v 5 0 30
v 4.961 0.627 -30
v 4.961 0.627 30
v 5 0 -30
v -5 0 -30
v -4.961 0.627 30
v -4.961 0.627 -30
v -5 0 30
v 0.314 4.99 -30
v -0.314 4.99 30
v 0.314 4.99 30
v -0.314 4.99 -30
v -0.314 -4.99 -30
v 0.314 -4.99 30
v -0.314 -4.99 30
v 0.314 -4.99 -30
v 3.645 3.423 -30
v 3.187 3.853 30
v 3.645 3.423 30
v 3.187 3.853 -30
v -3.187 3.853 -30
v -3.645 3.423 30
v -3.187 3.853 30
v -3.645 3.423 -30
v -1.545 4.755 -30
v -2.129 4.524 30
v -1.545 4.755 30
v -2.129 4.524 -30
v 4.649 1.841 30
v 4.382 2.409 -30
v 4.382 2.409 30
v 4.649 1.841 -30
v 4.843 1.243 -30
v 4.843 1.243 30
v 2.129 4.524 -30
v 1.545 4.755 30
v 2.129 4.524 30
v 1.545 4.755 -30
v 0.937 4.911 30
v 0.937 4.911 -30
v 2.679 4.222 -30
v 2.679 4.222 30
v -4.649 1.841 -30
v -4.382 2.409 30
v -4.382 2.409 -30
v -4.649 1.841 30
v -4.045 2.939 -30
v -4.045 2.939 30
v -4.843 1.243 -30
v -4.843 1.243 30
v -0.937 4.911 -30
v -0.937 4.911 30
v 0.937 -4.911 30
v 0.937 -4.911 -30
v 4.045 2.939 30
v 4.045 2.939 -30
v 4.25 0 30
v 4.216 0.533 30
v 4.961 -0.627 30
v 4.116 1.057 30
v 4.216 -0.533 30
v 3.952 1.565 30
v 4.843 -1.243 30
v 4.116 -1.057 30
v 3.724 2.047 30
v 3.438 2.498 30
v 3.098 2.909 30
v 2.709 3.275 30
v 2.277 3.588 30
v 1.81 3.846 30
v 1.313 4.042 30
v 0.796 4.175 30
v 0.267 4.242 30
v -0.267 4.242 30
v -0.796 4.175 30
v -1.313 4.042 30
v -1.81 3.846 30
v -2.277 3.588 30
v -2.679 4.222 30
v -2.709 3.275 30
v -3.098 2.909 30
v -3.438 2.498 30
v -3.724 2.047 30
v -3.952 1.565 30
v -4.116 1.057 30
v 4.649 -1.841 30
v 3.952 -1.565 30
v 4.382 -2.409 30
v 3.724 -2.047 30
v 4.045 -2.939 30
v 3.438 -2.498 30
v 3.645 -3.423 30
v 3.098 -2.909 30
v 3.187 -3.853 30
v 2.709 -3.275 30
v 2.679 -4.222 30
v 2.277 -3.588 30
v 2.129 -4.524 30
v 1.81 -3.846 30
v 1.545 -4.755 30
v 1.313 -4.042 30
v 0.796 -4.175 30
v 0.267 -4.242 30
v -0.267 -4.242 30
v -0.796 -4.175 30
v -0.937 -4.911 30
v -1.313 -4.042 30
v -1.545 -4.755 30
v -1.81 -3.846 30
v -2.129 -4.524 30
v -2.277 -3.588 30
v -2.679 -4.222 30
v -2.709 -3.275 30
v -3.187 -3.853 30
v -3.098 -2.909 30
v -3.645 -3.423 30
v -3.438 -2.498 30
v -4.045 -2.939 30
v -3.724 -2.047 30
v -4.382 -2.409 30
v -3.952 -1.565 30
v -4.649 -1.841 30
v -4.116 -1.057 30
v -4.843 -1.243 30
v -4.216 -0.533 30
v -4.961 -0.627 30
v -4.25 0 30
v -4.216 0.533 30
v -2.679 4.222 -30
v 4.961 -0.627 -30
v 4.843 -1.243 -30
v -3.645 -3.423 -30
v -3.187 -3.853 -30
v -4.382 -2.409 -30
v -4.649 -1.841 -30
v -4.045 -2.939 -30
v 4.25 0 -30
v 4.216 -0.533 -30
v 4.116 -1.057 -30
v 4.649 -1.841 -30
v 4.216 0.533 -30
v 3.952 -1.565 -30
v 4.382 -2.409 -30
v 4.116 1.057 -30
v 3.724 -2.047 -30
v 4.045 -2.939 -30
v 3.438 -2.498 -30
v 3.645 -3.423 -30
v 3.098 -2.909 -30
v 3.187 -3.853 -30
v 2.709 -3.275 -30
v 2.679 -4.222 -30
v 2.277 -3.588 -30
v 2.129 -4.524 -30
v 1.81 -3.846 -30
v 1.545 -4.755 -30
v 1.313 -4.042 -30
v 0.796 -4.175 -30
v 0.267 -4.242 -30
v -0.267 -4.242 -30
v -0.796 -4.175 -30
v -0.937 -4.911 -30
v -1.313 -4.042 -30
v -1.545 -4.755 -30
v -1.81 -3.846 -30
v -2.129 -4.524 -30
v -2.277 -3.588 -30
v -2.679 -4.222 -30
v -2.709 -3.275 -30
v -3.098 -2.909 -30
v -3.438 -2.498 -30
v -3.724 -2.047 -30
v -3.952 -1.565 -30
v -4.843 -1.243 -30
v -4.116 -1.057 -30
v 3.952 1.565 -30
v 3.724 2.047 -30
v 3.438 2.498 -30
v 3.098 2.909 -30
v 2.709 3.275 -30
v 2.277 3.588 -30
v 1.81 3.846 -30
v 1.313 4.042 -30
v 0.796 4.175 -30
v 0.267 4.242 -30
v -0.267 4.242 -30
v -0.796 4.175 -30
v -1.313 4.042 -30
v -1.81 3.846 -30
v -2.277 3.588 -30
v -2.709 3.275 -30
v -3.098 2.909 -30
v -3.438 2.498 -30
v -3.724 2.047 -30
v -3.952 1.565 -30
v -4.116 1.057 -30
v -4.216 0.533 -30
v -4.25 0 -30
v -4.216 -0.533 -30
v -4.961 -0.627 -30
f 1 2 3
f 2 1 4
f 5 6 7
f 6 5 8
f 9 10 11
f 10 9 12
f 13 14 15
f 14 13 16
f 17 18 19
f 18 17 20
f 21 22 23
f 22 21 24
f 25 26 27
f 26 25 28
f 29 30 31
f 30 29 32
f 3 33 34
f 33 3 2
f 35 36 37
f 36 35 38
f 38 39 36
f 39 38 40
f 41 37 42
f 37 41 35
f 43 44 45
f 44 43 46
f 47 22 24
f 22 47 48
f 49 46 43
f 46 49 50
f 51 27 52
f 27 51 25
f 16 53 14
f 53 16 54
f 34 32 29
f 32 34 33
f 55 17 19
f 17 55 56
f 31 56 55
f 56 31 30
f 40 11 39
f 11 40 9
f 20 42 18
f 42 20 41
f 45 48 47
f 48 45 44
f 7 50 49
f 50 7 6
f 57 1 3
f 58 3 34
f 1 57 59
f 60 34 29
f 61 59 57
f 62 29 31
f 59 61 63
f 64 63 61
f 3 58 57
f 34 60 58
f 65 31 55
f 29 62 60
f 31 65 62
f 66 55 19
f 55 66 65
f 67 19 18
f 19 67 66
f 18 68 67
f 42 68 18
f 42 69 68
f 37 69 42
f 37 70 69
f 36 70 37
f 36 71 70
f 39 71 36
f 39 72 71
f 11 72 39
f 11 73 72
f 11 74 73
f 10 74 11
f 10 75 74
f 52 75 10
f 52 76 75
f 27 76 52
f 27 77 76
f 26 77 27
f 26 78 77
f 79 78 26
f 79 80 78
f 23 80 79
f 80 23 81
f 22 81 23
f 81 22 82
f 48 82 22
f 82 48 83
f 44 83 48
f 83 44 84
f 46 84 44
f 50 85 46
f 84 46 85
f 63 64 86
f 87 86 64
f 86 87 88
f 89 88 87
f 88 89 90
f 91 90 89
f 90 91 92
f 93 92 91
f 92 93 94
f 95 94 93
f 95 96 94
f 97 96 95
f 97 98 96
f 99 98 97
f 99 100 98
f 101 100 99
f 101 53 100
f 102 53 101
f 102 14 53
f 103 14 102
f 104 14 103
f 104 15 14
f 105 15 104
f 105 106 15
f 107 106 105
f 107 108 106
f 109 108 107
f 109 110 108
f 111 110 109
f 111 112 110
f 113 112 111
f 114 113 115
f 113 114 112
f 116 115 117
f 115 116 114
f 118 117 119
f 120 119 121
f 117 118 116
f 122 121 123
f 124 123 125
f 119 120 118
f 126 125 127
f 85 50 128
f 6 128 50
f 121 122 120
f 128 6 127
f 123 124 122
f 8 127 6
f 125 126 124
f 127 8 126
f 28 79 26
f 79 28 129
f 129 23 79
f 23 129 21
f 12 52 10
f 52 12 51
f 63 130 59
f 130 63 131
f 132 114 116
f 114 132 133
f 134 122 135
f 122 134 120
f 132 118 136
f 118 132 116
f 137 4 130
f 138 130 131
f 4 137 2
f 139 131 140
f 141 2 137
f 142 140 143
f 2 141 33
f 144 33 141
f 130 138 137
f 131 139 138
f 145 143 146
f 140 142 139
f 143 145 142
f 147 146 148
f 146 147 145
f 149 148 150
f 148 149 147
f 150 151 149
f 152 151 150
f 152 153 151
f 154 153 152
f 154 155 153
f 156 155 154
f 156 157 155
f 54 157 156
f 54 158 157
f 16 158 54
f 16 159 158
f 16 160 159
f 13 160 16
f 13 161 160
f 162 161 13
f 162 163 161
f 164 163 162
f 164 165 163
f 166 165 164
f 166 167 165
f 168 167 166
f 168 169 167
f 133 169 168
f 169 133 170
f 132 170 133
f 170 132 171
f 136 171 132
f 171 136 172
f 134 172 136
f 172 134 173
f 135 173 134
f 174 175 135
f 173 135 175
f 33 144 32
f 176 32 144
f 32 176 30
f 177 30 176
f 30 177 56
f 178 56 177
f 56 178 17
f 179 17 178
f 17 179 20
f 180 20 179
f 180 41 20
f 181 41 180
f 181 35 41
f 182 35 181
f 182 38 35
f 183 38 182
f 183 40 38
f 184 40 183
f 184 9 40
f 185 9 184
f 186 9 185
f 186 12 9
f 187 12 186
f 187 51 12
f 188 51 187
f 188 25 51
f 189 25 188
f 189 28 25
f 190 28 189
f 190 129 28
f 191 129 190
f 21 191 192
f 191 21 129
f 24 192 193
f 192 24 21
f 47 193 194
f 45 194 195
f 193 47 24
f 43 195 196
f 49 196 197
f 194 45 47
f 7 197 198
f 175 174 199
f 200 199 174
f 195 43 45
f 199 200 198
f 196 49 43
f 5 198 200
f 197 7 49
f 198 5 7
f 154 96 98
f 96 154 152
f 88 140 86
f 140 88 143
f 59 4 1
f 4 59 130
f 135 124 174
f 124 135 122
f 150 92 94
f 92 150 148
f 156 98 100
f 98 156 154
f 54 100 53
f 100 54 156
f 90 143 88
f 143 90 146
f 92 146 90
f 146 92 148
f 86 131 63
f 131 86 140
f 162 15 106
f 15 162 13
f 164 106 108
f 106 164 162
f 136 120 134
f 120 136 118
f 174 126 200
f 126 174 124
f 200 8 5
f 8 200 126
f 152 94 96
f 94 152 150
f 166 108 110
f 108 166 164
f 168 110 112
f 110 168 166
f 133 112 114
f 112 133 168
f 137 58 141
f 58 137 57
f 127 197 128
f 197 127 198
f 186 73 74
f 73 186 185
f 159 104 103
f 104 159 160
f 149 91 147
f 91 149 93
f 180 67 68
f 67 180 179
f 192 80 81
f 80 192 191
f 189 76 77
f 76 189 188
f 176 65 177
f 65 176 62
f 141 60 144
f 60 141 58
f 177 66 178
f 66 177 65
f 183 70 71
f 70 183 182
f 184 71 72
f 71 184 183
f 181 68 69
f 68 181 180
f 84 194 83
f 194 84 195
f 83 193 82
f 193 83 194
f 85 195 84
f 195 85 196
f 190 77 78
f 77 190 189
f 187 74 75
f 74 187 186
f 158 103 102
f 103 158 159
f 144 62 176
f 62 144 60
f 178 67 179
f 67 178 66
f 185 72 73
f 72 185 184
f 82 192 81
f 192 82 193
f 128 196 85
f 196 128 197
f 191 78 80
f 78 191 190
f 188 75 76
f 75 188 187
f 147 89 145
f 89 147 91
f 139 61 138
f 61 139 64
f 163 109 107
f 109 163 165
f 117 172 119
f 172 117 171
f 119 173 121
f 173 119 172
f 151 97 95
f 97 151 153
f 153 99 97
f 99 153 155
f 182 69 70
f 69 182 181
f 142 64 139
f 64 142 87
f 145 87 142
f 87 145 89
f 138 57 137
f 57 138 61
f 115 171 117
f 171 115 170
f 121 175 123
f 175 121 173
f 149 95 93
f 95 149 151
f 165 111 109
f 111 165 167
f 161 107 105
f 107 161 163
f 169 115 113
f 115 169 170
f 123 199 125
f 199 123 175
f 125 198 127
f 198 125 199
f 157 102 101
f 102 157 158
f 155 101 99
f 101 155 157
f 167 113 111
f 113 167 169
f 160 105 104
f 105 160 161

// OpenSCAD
$fn = 50;


difference() {
	union() {
		translate(v = [0, 0, -30.0000000000]) {
			cylinder(h = 60, r = 5.0000000000);
		}
	}
	union() {
		translate(v = [0, 0, -100.0000000000]) {
			cylinder(h = 200, r = 4.2500000000);
		}
	}
}
